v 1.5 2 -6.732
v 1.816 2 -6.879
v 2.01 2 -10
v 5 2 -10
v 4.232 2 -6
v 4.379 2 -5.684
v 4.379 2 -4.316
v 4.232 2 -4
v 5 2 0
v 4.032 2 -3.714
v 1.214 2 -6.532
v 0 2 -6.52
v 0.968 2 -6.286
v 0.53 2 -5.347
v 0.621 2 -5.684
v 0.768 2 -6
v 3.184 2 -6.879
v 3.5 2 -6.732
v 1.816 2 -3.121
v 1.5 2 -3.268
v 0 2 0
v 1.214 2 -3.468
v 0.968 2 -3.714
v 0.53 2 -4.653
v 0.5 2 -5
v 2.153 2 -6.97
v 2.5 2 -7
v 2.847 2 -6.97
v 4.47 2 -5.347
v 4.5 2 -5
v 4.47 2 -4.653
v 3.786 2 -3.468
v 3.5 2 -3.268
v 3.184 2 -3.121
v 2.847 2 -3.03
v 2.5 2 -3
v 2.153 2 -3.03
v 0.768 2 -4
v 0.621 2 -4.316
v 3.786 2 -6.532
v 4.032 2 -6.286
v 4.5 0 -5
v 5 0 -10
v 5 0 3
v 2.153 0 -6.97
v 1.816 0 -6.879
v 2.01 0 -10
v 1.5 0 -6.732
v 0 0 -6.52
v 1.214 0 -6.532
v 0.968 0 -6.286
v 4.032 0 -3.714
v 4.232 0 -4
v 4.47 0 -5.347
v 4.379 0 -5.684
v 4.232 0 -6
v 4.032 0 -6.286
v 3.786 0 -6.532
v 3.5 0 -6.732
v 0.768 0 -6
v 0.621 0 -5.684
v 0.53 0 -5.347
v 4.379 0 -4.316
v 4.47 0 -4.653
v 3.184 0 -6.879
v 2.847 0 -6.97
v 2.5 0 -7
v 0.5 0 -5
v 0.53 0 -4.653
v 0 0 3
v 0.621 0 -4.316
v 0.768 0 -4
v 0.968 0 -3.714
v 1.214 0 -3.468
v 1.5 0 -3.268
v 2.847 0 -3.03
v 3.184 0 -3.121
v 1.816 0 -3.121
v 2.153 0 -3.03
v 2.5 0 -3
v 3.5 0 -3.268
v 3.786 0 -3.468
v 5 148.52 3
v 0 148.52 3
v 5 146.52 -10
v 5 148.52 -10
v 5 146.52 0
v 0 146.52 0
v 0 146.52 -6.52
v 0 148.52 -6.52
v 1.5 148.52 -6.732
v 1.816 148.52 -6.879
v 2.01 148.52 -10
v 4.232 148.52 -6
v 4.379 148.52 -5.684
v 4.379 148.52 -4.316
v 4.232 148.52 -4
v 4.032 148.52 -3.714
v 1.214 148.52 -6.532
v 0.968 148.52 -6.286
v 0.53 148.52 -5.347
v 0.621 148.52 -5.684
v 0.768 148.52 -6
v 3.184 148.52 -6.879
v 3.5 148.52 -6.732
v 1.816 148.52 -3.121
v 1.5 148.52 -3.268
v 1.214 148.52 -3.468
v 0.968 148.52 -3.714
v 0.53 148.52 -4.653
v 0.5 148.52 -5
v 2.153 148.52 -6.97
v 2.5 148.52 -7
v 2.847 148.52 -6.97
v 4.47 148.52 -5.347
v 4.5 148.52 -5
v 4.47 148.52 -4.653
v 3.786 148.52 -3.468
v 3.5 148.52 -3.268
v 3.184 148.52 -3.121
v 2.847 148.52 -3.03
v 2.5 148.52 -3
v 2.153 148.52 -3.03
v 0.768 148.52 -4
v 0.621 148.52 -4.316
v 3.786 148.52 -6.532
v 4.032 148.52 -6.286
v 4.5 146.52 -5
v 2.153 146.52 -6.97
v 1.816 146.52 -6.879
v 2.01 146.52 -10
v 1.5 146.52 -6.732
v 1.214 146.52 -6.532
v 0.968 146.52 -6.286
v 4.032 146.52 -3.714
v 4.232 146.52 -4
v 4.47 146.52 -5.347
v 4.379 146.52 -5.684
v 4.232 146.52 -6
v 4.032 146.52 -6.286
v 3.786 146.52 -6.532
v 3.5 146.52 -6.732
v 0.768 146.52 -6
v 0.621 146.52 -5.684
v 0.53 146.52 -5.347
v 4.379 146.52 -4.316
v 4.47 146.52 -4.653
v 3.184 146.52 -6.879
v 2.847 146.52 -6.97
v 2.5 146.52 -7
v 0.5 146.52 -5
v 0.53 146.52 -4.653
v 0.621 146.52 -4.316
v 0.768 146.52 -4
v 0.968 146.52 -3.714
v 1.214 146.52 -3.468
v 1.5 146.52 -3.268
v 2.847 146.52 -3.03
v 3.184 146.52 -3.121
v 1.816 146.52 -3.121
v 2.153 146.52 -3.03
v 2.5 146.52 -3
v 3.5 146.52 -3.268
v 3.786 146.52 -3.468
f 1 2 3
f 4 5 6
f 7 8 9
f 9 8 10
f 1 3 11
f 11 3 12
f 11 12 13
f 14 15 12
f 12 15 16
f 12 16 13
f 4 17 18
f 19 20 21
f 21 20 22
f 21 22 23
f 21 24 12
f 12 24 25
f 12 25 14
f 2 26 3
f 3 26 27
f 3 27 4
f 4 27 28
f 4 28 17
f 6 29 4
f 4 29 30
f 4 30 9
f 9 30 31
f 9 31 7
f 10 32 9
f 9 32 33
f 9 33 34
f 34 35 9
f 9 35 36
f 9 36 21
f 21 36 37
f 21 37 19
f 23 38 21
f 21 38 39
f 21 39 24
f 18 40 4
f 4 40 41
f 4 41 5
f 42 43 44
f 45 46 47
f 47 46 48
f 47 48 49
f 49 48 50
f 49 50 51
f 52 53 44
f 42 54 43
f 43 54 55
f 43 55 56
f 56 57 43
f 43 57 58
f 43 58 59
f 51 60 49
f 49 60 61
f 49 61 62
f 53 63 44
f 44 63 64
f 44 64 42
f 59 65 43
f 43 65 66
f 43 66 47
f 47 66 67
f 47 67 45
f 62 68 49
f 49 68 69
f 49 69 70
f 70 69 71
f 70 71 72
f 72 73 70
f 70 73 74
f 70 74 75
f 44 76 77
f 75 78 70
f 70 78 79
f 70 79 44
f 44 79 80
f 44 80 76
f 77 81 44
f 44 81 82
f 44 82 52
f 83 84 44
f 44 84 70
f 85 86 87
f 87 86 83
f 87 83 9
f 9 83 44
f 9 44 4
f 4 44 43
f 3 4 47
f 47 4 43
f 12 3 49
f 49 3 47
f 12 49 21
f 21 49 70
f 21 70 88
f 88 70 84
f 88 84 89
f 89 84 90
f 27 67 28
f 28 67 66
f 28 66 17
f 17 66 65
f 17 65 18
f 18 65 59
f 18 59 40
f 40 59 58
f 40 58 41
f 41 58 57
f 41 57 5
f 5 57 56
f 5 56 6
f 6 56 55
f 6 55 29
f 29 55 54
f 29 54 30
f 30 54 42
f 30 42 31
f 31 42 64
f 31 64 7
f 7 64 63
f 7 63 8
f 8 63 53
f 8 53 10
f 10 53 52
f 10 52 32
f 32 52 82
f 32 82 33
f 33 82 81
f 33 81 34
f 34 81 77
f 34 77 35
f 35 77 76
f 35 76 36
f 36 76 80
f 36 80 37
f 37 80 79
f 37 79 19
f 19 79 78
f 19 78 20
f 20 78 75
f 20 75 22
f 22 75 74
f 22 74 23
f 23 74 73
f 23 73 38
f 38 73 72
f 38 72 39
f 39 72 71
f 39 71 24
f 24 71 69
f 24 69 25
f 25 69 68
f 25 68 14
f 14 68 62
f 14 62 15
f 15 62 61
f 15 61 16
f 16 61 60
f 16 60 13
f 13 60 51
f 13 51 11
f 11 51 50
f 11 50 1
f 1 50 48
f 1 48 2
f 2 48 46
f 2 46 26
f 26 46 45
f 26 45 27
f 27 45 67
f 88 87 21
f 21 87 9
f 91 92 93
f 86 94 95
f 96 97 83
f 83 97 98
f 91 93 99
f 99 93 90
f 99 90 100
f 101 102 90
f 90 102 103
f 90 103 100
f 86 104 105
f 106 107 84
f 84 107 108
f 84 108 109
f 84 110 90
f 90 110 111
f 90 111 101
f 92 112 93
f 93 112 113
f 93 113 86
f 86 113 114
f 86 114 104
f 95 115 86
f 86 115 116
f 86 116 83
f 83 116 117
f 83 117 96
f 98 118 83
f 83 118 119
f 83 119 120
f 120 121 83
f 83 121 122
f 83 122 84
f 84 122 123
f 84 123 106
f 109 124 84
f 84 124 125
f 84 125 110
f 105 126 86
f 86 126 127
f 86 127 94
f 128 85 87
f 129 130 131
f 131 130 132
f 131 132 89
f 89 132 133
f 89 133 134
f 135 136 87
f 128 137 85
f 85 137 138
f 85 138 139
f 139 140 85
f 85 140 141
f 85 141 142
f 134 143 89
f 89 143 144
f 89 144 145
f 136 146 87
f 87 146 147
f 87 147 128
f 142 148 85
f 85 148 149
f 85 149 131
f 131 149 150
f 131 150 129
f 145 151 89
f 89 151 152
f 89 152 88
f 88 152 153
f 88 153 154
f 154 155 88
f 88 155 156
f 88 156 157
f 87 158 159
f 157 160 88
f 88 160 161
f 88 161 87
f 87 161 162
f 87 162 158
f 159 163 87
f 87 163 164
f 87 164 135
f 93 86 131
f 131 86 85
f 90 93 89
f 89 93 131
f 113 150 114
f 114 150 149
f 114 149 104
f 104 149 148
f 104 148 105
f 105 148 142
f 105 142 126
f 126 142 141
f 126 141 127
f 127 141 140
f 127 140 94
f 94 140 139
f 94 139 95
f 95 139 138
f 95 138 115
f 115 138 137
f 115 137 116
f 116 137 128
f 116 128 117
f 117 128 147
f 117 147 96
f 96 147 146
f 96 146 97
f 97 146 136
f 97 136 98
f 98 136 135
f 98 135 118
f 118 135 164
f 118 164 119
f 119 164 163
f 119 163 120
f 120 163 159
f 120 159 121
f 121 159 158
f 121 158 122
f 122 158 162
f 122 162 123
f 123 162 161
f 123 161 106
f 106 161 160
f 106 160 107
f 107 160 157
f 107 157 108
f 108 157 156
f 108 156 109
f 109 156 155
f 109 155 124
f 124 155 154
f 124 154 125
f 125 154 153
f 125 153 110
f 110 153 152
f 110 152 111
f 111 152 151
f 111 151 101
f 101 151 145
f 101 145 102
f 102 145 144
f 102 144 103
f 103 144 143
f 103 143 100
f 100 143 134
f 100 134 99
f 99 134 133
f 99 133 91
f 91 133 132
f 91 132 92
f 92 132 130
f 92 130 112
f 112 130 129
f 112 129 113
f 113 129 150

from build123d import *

# Parameters (mm, degrees)
ESQUISSE1_R        = 2
BOSS_EXTRU_1_DEPTH = 2
ESQUISSE2_W        = 5
ESQUISSE2_H        = 3
BOSS_EXTRU_2_DEPTH = 144.52
ESQUISSE3_R        = 2
BOSS_EXTRU_3_DEPTH = 2


with BuildPart() as part:
    # Esquisse1 → Boss.-Extru.1 (new body)
    with BuildSketch(Plane(origin=(0, 0, 0), x_dir=(1, 0, 0), z_dir=(0, 1, 0))):
        Polygon((2.01, 10), (0, 6.52), (0, 0), (0, -3), (5, -3), (5, 0), (5, 10), align=None)
        with Locations(Location((2.5, 5, 0), (0, 0, 270))):
            Circle(ESQUISSE1_R, mode=Mode.SUBTRACT)
    extrude(amount=BOSS_EXTRU_1_DEPTH)

    # Esquisse2 → Boss.-Extru.2 (add)
    with BuildSketch(Plane(origin=(0, 2, 0), x_dir=(1, 0, 0), z_dir=(0, 1, 0))):
        with Locations((2.5, -1.5)):
            Rectangle(ESQUISSE2_W, ESQUISSE2_H)
    extrude(amount=BOSS_EXTRU_2_DEPTH)

    # Esquisse3 → Boss.-Extru.3 (add)
    with BuildSketch(Plane(origin=(0, 146.52, 0), x_dir=(1, 0, 0), z_dir=(0, 1, 0))):
        Polygon((2.01, 10), (0, 6.52), (0, -3), (5, -3), (5, 10), align=None)
        with Locations(Location((2.5, 5, 0), (0, 0, 270))):
            Circle(ESQUISSE3_R, mode=Mode.SUBTRACT)
    extrude(amount=BOSS_EXTRU_3_DEPTH)


solid = part.part
